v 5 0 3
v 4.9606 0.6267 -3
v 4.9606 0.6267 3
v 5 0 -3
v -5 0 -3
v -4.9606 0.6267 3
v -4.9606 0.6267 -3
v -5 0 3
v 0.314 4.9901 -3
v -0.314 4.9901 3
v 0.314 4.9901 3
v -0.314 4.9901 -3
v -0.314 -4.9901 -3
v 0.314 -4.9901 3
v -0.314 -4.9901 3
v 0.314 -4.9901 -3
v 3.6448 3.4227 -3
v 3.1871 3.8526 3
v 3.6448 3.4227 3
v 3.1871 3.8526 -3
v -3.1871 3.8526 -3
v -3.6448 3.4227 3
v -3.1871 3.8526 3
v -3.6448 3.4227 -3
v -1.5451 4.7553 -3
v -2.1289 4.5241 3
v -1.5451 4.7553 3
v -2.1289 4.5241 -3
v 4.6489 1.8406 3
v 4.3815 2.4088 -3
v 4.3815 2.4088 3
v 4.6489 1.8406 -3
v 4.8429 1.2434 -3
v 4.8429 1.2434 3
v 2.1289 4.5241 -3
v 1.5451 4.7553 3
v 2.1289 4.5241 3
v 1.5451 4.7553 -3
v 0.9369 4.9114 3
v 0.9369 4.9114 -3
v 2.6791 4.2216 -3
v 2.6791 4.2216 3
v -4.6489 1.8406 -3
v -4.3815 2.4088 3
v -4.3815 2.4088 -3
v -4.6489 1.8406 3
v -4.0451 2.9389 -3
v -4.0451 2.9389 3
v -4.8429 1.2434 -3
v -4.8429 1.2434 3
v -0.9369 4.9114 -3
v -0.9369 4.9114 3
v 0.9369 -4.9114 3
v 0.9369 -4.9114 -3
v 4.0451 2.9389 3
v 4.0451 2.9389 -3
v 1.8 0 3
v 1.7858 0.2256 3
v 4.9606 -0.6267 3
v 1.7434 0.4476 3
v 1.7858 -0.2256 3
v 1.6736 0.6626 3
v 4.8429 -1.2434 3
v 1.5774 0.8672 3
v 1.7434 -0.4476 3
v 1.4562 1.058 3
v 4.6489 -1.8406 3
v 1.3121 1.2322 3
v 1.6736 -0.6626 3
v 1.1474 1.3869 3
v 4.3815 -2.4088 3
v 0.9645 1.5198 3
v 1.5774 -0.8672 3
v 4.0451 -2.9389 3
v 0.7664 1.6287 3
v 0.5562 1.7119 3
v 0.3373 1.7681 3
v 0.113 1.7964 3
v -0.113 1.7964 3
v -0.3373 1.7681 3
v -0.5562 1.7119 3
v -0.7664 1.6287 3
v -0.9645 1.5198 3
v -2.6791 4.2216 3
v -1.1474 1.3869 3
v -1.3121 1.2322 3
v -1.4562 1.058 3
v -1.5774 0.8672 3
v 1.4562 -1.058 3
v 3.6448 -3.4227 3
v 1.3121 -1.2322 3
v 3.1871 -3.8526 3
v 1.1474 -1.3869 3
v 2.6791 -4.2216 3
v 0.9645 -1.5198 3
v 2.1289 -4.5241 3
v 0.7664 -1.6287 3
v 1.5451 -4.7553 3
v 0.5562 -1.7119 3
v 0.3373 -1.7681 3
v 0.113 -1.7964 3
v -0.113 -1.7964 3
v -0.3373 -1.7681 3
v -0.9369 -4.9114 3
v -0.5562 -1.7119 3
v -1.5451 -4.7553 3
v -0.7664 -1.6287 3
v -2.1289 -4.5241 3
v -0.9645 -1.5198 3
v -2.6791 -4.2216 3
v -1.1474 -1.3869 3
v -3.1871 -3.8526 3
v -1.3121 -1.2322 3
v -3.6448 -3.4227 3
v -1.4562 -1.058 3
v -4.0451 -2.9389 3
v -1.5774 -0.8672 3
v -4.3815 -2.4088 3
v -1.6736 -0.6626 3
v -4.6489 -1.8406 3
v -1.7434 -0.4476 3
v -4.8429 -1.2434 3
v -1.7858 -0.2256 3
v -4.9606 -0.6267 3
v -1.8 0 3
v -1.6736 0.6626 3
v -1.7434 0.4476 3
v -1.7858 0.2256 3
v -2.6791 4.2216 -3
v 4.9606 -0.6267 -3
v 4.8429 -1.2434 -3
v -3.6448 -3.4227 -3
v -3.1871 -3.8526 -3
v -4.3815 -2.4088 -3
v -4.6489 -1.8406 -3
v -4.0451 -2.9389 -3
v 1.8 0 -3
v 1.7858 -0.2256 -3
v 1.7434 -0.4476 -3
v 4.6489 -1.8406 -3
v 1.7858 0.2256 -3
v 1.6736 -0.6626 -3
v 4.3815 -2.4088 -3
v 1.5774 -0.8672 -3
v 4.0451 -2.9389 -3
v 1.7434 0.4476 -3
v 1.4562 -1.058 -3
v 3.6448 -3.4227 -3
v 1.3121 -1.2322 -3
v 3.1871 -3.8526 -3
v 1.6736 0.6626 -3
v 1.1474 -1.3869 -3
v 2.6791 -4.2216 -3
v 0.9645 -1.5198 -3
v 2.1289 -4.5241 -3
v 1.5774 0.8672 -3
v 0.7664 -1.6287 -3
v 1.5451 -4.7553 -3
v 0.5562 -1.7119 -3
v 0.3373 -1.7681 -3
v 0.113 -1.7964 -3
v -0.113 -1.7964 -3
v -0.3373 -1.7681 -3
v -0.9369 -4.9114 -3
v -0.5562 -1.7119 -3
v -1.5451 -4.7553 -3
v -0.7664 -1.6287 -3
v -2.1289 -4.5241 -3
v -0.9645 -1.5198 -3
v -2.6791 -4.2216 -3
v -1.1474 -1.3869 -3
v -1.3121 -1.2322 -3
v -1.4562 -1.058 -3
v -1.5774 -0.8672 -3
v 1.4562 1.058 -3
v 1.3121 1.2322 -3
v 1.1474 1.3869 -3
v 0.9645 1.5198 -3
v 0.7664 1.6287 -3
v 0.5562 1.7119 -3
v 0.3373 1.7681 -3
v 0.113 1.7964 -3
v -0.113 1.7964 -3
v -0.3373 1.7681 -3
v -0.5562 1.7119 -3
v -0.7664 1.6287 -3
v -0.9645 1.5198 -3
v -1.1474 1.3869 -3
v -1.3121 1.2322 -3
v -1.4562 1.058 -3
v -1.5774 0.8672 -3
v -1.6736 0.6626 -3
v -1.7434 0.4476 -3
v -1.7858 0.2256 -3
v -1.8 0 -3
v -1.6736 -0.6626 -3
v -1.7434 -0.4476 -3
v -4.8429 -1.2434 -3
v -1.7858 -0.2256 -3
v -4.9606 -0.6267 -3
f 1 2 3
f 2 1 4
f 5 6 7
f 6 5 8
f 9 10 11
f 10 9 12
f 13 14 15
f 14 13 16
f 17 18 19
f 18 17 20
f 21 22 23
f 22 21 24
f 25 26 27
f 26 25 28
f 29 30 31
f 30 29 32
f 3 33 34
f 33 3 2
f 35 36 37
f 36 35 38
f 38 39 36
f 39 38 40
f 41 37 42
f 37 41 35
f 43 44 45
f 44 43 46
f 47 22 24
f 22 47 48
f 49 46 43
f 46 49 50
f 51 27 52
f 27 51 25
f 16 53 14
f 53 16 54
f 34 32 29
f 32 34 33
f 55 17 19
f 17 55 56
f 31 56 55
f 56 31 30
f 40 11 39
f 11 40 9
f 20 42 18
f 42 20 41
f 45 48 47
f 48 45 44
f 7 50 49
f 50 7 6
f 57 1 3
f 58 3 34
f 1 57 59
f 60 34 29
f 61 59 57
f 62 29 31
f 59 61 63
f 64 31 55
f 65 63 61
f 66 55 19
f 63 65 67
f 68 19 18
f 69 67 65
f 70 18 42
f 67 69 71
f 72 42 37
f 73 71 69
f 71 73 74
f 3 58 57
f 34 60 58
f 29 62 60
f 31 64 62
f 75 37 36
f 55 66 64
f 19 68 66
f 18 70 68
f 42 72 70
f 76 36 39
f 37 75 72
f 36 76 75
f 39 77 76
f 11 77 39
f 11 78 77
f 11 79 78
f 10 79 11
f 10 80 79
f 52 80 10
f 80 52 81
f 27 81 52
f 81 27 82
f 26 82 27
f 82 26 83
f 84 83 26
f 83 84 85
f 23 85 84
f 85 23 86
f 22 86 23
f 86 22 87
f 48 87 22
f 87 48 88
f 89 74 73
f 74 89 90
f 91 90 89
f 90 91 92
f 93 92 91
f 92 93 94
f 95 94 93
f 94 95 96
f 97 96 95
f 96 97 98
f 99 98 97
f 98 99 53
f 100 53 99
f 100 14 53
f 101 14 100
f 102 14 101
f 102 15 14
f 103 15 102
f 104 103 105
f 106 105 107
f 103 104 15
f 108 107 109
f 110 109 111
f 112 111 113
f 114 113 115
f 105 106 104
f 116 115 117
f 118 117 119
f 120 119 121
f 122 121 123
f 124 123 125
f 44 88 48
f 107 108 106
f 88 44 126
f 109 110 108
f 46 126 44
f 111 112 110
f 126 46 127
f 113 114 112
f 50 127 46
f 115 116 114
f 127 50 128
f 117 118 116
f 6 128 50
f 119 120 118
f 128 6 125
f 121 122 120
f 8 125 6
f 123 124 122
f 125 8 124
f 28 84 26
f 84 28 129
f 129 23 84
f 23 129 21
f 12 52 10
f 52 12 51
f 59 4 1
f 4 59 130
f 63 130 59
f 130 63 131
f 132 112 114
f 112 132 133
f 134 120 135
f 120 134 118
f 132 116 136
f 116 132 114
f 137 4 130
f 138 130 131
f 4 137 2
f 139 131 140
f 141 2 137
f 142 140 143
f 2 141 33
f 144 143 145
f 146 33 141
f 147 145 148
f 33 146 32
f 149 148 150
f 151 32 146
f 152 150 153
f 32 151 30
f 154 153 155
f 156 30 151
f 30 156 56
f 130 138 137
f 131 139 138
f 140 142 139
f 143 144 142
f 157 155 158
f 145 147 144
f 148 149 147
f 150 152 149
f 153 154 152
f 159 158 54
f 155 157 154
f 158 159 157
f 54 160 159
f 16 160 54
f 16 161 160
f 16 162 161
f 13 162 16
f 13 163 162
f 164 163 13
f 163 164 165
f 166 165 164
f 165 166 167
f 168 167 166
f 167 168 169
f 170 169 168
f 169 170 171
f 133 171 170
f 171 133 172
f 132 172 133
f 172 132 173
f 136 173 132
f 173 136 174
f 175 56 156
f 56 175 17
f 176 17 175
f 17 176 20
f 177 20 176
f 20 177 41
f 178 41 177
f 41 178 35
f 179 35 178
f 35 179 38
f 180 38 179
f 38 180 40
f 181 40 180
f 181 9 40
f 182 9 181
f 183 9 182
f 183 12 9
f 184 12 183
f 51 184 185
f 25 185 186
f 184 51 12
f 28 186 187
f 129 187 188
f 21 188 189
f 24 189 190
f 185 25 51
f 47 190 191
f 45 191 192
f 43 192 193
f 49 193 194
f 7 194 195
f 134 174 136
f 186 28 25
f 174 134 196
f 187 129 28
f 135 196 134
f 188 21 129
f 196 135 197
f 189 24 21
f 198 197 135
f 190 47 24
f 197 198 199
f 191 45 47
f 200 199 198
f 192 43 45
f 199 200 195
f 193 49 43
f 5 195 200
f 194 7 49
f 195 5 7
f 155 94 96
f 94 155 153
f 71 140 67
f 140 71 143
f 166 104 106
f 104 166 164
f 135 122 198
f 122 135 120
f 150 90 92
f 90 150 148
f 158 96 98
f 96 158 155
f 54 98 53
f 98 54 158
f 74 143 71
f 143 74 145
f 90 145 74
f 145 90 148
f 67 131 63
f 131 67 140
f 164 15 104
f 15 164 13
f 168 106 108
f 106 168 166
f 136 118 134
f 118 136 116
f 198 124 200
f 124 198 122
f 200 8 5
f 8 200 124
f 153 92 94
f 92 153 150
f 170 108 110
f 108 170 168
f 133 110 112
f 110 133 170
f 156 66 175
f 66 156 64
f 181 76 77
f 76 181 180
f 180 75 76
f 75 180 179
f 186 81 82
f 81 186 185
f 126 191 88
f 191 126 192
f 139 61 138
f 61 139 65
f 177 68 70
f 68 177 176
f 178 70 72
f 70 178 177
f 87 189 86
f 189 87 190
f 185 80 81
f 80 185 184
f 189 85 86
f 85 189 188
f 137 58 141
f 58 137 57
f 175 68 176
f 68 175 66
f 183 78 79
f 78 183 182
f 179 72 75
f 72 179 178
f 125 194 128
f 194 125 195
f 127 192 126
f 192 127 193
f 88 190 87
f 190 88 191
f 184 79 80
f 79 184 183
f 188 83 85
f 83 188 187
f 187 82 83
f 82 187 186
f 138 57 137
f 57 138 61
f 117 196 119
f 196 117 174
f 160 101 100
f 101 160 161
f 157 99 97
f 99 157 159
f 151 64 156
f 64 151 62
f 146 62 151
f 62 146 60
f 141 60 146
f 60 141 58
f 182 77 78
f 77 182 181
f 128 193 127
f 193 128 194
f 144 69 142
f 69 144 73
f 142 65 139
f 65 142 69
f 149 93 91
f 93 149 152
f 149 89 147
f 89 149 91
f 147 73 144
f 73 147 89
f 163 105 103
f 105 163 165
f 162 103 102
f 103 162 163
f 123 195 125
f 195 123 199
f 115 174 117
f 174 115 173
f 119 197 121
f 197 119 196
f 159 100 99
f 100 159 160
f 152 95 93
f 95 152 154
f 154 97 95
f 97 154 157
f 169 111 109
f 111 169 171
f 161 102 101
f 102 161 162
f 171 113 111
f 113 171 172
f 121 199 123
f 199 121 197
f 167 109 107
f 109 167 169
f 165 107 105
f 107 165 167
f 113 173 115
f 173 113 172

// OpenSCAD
$fn = 50;


difference() {
	union() {
		translate(v = [0, 0, -3.0000000000]) {
			cylinder(h = 6, r = 5.0000000000);
		}
	}
	union() {
		translate(v = [0, 0, -100.0000000000]) {
			cylinder(h = 200, r = 1.8000000000);
		}
	}
}
